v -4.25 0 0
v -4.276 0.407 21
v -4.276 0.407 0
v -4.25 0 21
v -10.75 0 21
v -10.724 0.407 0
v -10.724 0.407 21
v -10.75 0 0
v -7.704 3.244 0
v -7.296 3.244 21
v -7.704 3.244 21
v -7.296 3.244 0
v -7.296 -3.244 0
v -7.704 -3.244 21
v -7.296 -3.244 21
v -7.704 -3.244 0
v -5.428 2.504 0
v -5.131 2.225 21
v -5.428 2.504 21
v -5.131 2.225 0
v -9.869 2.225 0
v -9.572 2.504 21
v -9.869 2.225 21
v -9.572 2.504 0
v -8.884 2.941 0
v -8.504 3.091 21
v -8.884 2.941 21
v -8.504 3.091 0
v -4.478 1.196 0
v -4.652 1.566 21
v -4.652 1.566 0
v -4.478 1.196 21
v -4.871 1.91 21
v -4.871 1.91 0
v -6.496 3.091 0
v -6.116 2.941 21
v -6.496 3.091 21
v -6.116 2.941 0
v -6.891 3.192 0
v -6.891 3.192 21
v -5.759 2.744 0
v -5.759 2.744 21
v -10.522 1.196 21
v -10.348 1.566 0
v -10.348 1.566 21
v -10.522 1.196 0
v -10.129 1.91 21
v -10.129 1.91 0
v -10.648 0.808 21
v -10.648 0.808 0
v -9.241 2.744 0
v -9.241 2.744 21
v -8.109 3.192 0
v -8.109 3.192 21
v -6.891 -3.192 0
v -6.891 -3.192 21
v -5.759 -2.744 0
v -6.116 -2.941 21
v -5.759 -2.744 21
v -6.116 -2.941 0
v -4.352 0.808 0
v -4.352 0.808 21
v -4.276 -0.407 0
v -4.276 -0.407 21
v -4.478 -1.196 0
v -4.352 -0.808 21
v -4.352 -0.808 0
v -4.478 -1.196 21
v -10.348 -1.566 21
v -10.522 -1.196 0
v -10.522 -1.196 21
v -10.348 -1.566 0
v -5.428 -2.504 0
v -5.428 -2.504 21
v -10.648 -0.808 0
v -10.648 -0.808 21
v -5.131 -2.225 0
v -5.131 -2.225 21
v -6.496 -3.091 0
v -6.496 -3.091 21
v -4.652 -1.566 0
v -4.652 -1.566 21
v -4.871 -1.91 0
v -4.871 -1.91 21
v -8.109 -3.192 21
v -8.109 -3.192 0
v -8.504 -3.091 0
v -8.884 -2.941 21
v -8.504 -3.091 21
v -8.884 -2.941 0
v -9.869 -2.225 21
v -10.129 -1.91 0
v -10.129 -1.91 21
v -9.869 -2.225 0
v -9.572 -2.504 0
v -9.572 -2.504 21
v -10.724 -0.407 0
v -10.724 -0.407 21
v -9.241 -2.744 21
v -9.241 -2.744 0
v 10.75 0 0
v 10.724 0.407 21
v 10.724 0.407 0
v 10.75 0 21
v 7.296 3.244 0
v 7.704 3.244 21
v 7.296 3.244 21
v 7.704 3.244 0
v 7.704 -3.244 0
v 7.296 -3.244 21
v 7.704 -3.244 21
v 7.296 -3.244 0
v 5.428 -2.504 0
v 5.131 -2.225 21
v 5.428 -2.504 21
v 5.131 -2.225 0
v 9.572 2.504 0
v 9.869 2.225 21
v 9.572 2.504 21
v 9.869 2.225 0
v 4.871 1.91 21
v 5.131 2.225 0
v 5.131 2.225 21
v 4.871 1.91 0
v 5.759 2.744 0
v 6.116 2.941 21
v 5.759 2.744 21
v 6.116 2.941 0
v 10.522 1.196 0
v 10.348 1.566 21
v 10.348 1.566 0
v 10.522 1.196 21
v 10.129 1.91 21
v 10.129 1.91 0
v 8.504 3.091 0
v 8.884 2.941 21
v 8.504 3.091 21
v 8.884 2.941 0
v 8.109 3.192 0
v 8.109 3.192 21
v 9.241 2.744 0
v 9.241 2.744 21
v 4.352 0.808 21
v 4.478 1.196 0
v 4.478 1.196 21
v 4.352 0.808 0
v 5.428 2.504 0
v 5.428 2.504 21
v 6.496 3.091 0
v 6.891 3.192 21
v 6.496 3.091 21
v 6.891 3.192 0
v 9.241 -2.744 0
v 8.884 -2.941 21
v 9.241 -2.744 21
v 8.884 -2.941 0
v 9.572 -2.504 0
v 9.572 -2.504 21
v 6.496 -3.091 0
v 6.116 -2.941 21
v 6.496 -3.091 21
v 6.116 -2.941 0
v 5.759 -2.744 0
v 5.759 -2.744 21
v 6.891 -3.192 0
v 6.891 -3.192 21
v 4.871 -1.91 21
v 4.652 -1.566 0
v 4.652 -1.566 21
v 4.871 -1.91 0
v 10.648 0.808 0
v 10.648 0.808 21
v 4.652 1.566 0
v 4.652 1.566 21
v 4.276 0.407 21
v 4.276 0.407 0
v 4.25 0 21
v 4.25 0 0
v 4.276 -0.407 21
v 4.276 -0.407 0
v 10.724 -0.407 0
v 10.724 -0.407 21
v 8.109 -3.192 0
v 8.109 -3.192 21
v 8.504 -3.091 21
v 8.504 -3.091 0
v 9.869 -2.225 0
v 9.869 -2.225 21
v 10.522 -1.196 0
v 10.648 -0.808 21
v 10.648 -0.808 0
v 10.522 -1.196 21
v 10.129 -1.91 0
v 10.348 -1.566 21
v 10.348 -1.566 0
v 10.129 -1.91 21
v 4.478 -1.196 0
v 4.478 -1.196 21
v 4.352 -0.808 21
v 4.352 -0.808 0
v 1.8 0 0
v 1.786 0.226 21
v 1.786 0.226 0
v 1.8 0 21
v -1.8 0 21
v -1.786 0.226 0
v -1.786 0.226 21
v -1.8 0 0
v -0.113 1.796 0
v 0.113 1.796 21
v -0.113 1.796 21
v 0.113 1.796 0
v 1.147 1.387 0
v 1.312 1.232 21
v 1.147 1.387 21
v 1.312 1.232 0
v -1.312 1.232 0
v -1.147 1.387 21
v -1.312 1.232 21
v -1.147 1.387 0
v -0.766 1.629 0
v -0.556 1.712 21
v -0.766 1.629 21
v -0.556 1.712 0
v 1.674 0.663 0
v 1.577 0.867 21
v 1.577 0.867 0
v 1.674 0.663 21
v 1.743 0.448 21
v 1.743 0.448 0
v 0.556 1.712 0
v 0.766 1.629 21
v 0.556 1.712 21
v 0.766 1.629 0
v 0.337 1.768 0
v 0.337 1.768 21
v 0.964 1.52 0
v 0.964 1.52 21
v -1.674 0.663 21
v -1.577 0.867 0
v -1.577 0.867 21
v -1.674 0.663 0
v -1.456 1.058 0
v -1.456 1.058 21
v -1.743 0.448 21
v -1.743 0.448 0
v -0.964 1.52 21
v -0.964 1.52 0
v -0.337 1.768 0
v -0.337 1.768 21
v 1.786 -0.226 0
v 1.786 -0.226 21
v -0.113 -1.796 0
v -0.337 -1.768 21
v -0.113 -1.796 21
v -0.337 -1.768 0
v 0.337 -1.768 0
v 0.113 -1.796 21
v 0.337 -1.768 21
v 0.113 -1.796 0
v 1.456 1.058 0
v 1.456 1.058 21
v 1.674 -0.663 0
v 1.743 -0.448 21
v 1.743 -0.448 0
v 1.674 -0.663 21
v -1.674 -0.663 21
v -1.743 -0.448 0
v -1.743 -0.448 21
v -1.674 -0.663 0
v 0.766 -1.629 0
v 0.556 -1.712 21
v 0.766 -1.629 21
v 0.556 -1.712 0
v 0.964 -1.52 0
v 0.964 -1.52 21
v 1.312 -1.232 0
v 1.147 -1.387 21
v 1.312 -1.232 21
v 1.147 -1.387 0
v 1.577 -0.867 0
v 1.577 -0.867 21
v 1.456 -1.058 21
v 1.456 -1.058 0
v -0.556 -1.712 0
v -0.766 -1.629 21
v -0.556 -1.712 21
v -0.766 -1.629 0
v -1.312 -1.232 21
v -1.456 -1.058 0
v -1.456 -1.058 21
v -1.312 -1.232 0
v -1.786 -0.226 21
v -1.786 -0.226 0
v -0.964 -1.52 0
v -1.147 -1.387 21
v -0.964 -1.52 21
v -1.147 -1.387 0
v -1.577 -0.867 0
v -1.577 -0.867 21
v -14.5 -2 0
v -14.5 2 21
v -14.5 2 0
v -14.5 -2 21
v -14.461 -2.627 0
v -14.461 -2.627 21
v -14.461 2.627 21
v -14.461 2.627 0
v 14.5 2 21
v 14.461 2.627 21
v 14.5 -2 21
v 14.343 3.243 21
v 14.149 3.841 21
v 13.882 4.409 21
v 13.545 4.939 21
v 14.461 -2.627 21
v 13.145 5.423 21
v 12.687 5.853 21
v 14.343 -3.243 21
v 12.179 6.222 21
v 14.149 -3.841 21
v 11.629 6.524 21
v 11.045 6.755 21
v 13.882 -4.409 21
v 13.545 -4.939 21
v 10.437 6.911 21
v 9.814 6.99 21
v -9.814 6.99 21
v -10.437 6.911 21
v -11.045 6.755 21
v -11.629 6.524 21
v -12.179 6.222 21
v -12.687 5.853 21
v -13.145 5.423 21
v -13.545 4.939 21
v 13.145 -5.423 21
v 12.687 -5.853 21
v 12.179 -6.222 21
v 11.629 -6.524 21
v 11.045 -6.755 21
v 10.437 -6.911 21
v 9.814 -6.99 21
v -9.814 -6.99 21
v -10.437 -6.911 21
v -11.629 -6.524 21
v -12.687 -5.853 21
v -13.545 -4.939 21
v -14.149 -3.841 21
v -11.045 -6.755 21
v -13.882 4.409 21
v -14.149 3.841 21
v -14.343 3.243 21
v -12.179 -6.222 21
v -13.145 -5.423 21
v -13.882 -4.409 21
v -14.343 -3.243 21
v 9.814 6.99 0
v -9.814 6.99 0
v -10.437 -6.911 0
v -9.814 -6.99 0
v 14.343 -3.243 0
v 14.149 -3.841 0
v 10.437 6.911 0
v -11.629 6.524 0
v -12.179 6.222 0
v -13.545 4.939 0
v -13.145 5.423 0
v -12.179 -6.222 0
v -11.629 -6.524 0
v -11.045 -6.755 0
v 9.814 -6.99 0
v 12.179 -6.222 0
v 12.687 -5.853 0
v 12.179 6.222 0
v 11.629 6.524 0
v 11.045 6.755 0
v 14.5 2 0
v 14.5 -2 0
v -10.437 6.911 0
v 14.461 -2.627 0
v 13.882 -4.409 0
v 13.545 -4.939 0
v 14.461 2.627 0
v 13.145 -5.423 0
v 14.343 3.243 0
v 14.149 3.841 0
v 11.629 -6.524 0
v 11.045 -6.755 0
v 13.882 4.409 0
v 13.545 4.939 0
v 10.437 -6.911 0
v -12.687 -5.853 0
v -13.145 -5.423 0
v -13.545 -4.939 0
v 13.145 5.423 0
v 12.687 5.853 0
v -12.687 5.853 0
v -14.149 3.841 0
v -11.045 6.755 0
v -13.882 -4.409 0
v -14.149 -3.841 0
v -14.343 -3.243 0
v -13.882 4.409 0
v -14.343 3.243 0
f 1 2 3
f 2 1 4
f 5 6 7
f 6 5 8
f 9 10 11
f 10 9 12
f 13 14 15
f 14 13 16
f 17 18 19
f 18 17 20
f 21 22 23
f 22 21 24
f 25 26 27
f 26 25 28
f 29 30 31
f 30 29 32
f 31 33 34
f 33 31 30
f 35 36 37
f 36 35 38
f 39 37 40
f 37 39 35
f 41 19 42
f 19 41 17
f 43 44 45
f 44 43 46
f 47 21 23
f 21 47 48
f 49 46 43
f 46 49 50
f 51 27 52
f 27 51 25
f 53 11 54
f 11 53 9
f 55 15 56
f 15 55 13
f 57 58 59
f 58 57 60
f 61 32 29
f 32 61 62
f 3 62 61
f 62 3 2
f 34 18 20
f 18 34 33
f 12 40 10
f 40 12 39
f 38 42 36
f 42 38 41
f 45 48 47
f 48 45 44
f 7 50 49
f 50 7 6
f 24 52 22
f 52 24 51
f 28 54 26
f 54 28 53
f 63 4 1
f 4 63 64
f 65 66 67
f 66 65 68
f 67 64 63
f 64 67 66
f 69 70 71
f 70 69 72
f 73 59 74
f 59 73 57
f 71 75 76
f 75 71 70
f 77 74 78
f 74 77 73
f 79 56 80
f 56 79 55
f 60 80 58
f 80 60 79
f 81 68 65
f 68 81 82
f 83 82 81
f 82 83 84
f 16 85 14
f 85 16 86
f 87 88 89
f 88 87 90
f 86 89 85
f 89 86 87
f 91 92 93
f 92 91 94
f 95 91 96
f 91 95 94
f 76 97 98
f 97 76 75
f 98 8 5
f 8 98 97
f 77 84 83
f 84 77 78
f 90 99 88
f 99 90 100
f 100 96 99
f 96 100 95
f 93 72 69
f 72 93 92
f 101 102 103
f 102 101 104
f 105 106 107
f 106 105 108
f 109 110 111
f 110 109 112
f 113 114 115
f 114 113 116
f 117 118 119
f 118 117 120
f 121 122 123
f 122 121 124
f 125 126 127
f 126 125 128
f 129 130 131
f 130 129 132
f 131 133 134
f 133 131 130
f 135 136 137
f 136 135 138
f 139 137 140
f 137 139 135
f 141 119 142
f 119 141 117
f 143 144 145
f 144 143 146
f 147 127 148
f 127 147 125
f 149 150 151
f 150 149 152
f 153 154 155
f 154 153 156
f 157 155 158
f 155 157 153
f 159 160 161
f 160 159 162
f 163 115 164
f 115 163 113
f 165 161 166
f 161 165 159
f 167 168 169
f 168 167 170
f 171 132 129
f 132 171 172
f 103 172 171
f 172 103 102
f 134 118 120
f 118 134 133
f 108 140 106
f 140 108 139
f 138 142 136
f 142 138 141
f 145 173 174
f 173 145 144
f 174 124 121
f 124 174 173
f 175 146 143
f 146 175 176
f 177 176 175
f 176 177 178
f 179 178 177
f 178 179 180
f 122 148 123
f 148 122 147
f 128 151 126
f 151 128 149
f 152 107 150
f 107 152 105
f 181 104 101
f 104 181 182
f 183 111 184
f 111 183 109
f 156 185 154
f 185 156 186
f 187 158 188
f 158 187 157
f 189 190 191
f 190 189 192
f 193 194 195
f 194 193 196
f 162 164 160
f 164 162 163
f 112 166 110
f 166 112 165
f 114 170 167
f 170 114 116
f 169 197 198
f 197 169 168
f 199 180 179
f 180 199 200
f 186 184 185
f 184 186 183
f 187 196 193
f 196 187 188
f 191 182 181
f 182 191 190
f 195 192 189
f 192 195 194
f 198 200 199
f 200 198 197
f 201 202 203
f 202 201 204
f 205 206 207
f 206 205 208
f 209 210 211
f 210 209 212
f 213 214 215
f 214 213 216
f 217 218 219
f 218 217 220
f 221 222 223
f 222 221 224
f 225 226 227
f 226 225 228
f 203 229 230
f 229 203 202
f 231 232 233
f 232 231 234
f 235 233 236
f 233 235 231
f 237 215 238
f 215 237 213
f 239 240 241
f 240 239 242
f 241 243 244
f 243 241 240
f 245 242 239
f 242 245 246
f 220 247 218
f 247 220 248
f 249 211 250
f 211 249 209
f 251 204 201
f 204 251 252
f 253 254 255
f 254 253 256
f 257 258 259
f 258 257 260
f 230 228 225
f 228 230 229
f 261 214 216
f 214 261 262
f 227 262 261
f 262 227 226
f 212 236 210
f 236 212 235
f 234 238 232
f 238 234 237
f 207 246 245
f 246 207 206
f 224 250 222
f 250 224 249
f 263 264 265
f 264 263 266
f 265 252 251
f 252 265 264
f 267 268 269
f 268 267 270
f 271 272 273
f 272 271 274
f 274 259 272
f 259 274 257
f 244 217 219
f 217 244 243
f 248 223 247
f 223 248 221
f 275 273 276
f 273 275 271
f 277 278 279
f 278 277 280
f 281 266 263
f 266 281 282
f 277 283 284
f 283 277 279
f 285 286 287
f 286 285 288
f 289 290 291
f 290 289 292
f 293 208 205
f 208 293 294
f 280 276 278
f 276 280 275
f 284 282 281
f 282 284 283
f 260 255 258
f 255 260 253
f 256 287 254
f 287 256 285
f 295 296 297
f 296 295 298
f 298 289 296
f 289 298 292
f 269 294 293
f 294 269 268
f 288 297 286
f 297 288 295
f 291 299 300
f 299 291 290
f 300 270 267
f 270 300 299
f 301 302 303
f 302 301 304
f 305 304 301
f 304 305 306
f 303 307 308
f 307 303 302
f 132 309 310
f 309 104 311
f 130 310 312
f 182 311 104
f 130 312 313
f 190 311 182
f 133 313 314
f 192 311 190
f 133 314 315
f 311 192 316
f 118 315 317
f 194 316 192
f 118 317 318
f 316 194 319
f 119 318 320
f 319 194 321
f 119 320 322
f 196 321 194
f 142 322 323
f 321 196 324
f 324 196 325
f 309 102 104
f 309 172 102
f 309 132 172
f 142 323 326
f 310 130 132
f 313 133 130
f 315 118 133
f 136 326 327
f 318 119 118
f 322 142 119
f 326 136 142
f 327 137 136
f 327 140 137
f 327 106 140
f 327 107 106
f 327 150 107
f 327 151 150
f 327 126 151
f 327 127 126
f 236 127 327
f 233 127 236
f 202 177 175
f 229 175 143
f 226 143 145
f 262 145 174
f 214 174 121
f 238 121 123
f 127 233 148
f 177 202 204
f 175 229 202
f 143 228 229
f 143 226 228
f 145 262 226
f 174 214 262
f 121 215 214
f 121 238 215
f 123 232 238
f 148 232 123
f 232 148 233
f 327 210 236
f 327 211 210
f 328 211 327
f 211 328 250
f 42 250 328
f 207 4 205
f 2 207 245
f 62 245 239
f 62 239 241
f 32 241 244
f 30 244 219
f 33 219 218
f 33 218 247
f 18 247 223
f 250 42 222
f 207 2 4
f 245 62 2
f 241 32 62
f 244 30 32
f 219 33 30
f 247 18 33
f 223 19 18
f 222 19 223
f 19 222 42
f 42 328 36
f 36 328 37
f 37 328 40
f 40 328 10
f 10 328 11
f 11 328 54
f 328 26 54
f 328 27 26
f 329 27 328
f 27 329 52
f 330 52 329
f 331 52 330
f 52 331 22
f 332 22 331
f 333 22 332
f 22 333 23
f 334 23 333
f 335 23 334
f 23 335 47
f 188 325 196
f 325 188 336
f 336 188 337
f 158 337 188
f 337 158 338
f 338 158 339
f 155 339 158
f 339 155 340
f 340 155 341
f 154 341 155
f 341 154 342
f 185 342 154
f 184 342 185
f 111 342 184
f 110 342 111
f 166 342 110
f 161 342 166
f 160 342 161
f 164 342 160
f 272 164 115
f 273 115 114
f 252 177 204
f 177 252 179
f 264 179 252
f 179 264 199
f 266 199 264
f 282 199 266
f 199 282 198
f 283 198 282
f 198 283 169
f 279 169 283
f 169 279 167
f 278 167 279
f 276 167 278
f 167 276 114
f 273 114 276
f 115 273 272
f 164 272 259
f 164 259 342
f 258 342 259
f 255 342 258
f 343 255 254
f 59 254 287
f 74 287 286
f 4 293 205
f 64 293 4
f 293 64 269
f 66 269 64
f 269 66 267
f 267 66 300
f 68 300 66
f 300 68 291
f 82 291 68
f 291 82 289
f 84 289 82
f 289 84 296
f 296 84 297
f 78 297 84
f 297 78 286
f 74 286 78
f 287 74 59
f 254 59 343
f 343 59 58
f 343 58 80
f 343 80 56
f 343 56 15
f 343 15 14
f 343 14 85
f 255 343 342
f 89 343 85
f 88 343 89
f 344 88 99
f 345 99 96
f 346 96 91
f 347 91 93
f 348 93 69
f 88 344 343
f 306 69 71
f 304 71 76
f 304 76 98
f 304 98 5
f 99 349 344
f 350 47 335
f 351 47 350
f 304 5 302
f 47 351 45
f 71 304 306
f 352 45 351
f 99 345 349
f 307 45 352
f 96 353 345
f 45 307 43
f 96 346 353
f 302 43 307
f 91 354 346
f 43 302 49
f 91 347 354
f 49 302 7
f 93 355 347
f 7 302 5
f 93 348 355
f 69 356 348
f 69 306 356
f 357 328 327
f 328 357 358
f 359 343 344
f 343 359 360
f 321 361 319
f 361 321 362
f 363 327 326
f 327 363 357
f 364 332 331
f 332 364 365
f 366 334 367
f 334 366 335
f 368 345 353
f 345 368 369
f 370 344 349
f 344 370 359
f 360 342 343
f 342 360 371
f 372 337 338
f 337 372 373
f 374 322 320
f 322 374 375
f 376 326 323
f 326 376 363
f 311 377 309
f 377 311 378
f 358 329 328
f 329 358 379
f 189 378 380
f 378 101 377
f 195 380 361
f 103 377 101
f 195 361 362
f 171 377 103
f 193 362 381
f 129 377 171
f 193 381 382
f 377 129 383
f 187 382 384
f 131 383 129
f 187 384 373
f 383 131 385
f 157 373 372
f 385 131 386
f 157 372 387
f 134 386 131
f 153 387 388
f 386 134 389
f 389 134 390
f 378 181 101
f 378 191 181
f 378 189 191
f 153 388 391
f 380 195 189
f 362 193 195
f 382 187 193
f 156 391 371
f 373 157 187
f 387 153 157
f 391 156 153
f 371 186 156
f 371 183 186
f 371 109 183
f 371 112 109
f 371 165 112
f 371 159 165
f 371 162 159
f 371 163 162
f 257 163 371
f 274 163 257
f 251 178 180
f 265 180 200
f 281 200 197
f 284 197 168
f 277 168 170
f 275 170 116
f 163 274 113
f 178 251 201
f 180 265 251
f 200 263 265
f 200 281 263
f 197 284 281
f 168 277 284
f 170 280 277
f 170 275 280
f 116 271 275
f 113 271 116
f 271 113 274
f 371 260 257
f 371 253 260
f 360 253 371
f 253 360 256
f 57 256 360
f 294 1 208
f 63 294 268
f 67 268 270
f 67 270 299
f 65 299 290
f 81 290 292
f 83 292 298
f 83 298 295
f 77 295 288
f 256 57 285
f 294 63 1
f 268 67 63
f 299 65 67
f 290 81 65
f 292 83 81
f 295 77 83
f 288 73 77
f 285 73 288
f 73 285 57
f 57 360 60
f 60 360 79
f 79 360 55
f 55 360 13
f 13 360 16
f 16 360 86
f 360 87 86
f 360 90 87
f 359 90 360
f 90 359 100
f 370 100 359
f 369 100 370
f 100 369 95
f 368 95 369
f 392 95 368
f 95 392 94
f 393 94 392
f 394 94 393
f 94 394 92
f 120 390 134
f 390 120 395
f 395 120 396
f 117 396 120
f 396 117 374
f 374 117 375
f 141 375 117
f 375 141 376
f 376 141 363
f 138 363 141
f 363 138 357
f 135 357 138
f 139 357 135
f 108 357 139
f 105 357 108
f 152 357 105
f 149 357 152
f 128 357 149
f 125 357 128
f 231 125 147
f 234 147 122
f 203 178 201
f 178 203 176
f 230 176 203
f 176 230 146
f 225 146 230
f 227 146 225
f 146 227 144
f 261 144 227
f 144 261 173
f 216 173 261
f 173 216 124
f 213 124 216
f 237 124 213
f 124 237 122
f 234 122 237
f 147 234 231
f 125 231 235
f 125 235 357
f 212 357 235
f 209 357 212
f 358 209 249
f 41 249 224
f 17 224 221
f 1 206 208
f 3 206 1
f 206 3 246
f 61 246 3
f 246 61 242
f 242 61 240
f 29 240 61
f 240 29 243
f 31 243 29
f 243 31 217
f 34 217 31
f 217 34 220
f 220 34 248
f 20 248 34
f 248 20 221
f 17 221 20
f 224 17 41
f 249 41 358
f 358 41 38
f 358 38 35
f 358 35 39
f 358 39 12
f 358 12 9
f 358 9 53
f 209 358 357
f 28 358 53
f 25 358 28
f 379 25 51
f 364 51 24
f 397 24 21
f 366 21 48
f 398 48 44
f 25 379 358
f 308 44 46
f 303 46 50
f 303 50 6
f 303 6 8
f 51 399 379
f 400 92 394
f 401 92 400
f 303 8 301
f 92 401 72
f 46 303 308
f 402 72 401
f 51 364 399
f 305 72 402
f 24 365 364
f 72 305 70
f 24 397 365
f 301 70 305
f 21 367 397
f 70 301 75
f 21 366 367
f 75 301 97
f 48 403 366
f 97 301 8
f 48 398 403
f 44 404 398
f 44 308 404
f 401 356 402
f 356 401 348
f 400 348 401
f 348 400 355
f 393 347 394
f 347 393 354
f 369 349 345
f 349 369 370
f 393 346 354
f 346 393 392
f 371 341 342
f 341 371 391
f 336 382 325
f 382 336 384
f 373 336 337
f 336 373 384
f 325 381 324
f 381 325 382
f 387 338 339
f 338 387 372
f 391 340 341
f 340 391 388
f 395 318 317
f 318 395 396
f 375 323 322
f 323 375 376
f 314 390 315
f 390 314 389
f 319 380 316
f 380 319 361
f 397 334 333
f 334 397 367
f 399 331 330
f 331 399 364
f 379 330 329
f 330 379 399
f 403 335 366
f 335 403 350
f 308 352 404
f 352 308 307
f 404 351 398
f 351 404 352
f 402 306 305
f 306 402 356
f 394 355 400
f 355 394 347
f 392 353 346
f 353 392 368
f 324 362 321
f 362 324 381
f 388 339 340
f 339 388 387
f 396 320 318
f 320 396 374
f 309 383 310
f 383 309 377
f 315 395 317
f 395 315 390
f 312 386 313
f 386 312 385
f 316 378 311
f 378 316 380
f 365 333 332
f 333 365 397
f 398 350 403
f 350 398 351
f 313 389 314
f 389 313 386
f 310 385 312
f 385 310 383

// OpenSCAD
$fn = 50;


difference() {
	union() {
		hull() {
			translate(v = [-9.5000000000, 2.0000000000, 0]) {
				cylinder(h = 21, r = 5);
			}
			translate(v = [9.5000000000, 2.0000000000, 0]) {
				cylinder(h = 21, r = 5);
			}
			translate(v = [-9.5000000000, -2.0000000000, 0]) {
				cylinder(h = 21, r = 5);
			}
			translate(v = [9.5000000000, -2.0000000000, 0]) {
				cylinder(h = 21, r = 5);
			}
		}
	}
	union() {
		translate(v = [-7.5000000000, 0.0000000000, 0]) {
			translate(v = [0, 0, -100]) {
				cylinder(h = 200, r = 3.2500000000);
			}
		}
		translate(v = [7.5000000000, 0.0000000000, 0]) {
			translate(v = [0, 0, -100]) {
				cylinder(h = 200, r = 3.2500000000);
			}
		}
		translate(v = [-7.5000000000, 0.0000000000, 0]) {
			translate(v = [0, 0, -100]) {
				cylinder(h = 200, r = 1.8000000000);
			}
		}
		translate(v = [0, 0, -100]) {
			cylinder(h = 200, r = 1.8000000000);
		}
		translate(v = [7.5000000000, 0.0000000000, 0]) {
			translate(v = [0, 0, -100]) {
				cylinder(h = 200, r = 1.8000000000);
			}
		}
	}
}
